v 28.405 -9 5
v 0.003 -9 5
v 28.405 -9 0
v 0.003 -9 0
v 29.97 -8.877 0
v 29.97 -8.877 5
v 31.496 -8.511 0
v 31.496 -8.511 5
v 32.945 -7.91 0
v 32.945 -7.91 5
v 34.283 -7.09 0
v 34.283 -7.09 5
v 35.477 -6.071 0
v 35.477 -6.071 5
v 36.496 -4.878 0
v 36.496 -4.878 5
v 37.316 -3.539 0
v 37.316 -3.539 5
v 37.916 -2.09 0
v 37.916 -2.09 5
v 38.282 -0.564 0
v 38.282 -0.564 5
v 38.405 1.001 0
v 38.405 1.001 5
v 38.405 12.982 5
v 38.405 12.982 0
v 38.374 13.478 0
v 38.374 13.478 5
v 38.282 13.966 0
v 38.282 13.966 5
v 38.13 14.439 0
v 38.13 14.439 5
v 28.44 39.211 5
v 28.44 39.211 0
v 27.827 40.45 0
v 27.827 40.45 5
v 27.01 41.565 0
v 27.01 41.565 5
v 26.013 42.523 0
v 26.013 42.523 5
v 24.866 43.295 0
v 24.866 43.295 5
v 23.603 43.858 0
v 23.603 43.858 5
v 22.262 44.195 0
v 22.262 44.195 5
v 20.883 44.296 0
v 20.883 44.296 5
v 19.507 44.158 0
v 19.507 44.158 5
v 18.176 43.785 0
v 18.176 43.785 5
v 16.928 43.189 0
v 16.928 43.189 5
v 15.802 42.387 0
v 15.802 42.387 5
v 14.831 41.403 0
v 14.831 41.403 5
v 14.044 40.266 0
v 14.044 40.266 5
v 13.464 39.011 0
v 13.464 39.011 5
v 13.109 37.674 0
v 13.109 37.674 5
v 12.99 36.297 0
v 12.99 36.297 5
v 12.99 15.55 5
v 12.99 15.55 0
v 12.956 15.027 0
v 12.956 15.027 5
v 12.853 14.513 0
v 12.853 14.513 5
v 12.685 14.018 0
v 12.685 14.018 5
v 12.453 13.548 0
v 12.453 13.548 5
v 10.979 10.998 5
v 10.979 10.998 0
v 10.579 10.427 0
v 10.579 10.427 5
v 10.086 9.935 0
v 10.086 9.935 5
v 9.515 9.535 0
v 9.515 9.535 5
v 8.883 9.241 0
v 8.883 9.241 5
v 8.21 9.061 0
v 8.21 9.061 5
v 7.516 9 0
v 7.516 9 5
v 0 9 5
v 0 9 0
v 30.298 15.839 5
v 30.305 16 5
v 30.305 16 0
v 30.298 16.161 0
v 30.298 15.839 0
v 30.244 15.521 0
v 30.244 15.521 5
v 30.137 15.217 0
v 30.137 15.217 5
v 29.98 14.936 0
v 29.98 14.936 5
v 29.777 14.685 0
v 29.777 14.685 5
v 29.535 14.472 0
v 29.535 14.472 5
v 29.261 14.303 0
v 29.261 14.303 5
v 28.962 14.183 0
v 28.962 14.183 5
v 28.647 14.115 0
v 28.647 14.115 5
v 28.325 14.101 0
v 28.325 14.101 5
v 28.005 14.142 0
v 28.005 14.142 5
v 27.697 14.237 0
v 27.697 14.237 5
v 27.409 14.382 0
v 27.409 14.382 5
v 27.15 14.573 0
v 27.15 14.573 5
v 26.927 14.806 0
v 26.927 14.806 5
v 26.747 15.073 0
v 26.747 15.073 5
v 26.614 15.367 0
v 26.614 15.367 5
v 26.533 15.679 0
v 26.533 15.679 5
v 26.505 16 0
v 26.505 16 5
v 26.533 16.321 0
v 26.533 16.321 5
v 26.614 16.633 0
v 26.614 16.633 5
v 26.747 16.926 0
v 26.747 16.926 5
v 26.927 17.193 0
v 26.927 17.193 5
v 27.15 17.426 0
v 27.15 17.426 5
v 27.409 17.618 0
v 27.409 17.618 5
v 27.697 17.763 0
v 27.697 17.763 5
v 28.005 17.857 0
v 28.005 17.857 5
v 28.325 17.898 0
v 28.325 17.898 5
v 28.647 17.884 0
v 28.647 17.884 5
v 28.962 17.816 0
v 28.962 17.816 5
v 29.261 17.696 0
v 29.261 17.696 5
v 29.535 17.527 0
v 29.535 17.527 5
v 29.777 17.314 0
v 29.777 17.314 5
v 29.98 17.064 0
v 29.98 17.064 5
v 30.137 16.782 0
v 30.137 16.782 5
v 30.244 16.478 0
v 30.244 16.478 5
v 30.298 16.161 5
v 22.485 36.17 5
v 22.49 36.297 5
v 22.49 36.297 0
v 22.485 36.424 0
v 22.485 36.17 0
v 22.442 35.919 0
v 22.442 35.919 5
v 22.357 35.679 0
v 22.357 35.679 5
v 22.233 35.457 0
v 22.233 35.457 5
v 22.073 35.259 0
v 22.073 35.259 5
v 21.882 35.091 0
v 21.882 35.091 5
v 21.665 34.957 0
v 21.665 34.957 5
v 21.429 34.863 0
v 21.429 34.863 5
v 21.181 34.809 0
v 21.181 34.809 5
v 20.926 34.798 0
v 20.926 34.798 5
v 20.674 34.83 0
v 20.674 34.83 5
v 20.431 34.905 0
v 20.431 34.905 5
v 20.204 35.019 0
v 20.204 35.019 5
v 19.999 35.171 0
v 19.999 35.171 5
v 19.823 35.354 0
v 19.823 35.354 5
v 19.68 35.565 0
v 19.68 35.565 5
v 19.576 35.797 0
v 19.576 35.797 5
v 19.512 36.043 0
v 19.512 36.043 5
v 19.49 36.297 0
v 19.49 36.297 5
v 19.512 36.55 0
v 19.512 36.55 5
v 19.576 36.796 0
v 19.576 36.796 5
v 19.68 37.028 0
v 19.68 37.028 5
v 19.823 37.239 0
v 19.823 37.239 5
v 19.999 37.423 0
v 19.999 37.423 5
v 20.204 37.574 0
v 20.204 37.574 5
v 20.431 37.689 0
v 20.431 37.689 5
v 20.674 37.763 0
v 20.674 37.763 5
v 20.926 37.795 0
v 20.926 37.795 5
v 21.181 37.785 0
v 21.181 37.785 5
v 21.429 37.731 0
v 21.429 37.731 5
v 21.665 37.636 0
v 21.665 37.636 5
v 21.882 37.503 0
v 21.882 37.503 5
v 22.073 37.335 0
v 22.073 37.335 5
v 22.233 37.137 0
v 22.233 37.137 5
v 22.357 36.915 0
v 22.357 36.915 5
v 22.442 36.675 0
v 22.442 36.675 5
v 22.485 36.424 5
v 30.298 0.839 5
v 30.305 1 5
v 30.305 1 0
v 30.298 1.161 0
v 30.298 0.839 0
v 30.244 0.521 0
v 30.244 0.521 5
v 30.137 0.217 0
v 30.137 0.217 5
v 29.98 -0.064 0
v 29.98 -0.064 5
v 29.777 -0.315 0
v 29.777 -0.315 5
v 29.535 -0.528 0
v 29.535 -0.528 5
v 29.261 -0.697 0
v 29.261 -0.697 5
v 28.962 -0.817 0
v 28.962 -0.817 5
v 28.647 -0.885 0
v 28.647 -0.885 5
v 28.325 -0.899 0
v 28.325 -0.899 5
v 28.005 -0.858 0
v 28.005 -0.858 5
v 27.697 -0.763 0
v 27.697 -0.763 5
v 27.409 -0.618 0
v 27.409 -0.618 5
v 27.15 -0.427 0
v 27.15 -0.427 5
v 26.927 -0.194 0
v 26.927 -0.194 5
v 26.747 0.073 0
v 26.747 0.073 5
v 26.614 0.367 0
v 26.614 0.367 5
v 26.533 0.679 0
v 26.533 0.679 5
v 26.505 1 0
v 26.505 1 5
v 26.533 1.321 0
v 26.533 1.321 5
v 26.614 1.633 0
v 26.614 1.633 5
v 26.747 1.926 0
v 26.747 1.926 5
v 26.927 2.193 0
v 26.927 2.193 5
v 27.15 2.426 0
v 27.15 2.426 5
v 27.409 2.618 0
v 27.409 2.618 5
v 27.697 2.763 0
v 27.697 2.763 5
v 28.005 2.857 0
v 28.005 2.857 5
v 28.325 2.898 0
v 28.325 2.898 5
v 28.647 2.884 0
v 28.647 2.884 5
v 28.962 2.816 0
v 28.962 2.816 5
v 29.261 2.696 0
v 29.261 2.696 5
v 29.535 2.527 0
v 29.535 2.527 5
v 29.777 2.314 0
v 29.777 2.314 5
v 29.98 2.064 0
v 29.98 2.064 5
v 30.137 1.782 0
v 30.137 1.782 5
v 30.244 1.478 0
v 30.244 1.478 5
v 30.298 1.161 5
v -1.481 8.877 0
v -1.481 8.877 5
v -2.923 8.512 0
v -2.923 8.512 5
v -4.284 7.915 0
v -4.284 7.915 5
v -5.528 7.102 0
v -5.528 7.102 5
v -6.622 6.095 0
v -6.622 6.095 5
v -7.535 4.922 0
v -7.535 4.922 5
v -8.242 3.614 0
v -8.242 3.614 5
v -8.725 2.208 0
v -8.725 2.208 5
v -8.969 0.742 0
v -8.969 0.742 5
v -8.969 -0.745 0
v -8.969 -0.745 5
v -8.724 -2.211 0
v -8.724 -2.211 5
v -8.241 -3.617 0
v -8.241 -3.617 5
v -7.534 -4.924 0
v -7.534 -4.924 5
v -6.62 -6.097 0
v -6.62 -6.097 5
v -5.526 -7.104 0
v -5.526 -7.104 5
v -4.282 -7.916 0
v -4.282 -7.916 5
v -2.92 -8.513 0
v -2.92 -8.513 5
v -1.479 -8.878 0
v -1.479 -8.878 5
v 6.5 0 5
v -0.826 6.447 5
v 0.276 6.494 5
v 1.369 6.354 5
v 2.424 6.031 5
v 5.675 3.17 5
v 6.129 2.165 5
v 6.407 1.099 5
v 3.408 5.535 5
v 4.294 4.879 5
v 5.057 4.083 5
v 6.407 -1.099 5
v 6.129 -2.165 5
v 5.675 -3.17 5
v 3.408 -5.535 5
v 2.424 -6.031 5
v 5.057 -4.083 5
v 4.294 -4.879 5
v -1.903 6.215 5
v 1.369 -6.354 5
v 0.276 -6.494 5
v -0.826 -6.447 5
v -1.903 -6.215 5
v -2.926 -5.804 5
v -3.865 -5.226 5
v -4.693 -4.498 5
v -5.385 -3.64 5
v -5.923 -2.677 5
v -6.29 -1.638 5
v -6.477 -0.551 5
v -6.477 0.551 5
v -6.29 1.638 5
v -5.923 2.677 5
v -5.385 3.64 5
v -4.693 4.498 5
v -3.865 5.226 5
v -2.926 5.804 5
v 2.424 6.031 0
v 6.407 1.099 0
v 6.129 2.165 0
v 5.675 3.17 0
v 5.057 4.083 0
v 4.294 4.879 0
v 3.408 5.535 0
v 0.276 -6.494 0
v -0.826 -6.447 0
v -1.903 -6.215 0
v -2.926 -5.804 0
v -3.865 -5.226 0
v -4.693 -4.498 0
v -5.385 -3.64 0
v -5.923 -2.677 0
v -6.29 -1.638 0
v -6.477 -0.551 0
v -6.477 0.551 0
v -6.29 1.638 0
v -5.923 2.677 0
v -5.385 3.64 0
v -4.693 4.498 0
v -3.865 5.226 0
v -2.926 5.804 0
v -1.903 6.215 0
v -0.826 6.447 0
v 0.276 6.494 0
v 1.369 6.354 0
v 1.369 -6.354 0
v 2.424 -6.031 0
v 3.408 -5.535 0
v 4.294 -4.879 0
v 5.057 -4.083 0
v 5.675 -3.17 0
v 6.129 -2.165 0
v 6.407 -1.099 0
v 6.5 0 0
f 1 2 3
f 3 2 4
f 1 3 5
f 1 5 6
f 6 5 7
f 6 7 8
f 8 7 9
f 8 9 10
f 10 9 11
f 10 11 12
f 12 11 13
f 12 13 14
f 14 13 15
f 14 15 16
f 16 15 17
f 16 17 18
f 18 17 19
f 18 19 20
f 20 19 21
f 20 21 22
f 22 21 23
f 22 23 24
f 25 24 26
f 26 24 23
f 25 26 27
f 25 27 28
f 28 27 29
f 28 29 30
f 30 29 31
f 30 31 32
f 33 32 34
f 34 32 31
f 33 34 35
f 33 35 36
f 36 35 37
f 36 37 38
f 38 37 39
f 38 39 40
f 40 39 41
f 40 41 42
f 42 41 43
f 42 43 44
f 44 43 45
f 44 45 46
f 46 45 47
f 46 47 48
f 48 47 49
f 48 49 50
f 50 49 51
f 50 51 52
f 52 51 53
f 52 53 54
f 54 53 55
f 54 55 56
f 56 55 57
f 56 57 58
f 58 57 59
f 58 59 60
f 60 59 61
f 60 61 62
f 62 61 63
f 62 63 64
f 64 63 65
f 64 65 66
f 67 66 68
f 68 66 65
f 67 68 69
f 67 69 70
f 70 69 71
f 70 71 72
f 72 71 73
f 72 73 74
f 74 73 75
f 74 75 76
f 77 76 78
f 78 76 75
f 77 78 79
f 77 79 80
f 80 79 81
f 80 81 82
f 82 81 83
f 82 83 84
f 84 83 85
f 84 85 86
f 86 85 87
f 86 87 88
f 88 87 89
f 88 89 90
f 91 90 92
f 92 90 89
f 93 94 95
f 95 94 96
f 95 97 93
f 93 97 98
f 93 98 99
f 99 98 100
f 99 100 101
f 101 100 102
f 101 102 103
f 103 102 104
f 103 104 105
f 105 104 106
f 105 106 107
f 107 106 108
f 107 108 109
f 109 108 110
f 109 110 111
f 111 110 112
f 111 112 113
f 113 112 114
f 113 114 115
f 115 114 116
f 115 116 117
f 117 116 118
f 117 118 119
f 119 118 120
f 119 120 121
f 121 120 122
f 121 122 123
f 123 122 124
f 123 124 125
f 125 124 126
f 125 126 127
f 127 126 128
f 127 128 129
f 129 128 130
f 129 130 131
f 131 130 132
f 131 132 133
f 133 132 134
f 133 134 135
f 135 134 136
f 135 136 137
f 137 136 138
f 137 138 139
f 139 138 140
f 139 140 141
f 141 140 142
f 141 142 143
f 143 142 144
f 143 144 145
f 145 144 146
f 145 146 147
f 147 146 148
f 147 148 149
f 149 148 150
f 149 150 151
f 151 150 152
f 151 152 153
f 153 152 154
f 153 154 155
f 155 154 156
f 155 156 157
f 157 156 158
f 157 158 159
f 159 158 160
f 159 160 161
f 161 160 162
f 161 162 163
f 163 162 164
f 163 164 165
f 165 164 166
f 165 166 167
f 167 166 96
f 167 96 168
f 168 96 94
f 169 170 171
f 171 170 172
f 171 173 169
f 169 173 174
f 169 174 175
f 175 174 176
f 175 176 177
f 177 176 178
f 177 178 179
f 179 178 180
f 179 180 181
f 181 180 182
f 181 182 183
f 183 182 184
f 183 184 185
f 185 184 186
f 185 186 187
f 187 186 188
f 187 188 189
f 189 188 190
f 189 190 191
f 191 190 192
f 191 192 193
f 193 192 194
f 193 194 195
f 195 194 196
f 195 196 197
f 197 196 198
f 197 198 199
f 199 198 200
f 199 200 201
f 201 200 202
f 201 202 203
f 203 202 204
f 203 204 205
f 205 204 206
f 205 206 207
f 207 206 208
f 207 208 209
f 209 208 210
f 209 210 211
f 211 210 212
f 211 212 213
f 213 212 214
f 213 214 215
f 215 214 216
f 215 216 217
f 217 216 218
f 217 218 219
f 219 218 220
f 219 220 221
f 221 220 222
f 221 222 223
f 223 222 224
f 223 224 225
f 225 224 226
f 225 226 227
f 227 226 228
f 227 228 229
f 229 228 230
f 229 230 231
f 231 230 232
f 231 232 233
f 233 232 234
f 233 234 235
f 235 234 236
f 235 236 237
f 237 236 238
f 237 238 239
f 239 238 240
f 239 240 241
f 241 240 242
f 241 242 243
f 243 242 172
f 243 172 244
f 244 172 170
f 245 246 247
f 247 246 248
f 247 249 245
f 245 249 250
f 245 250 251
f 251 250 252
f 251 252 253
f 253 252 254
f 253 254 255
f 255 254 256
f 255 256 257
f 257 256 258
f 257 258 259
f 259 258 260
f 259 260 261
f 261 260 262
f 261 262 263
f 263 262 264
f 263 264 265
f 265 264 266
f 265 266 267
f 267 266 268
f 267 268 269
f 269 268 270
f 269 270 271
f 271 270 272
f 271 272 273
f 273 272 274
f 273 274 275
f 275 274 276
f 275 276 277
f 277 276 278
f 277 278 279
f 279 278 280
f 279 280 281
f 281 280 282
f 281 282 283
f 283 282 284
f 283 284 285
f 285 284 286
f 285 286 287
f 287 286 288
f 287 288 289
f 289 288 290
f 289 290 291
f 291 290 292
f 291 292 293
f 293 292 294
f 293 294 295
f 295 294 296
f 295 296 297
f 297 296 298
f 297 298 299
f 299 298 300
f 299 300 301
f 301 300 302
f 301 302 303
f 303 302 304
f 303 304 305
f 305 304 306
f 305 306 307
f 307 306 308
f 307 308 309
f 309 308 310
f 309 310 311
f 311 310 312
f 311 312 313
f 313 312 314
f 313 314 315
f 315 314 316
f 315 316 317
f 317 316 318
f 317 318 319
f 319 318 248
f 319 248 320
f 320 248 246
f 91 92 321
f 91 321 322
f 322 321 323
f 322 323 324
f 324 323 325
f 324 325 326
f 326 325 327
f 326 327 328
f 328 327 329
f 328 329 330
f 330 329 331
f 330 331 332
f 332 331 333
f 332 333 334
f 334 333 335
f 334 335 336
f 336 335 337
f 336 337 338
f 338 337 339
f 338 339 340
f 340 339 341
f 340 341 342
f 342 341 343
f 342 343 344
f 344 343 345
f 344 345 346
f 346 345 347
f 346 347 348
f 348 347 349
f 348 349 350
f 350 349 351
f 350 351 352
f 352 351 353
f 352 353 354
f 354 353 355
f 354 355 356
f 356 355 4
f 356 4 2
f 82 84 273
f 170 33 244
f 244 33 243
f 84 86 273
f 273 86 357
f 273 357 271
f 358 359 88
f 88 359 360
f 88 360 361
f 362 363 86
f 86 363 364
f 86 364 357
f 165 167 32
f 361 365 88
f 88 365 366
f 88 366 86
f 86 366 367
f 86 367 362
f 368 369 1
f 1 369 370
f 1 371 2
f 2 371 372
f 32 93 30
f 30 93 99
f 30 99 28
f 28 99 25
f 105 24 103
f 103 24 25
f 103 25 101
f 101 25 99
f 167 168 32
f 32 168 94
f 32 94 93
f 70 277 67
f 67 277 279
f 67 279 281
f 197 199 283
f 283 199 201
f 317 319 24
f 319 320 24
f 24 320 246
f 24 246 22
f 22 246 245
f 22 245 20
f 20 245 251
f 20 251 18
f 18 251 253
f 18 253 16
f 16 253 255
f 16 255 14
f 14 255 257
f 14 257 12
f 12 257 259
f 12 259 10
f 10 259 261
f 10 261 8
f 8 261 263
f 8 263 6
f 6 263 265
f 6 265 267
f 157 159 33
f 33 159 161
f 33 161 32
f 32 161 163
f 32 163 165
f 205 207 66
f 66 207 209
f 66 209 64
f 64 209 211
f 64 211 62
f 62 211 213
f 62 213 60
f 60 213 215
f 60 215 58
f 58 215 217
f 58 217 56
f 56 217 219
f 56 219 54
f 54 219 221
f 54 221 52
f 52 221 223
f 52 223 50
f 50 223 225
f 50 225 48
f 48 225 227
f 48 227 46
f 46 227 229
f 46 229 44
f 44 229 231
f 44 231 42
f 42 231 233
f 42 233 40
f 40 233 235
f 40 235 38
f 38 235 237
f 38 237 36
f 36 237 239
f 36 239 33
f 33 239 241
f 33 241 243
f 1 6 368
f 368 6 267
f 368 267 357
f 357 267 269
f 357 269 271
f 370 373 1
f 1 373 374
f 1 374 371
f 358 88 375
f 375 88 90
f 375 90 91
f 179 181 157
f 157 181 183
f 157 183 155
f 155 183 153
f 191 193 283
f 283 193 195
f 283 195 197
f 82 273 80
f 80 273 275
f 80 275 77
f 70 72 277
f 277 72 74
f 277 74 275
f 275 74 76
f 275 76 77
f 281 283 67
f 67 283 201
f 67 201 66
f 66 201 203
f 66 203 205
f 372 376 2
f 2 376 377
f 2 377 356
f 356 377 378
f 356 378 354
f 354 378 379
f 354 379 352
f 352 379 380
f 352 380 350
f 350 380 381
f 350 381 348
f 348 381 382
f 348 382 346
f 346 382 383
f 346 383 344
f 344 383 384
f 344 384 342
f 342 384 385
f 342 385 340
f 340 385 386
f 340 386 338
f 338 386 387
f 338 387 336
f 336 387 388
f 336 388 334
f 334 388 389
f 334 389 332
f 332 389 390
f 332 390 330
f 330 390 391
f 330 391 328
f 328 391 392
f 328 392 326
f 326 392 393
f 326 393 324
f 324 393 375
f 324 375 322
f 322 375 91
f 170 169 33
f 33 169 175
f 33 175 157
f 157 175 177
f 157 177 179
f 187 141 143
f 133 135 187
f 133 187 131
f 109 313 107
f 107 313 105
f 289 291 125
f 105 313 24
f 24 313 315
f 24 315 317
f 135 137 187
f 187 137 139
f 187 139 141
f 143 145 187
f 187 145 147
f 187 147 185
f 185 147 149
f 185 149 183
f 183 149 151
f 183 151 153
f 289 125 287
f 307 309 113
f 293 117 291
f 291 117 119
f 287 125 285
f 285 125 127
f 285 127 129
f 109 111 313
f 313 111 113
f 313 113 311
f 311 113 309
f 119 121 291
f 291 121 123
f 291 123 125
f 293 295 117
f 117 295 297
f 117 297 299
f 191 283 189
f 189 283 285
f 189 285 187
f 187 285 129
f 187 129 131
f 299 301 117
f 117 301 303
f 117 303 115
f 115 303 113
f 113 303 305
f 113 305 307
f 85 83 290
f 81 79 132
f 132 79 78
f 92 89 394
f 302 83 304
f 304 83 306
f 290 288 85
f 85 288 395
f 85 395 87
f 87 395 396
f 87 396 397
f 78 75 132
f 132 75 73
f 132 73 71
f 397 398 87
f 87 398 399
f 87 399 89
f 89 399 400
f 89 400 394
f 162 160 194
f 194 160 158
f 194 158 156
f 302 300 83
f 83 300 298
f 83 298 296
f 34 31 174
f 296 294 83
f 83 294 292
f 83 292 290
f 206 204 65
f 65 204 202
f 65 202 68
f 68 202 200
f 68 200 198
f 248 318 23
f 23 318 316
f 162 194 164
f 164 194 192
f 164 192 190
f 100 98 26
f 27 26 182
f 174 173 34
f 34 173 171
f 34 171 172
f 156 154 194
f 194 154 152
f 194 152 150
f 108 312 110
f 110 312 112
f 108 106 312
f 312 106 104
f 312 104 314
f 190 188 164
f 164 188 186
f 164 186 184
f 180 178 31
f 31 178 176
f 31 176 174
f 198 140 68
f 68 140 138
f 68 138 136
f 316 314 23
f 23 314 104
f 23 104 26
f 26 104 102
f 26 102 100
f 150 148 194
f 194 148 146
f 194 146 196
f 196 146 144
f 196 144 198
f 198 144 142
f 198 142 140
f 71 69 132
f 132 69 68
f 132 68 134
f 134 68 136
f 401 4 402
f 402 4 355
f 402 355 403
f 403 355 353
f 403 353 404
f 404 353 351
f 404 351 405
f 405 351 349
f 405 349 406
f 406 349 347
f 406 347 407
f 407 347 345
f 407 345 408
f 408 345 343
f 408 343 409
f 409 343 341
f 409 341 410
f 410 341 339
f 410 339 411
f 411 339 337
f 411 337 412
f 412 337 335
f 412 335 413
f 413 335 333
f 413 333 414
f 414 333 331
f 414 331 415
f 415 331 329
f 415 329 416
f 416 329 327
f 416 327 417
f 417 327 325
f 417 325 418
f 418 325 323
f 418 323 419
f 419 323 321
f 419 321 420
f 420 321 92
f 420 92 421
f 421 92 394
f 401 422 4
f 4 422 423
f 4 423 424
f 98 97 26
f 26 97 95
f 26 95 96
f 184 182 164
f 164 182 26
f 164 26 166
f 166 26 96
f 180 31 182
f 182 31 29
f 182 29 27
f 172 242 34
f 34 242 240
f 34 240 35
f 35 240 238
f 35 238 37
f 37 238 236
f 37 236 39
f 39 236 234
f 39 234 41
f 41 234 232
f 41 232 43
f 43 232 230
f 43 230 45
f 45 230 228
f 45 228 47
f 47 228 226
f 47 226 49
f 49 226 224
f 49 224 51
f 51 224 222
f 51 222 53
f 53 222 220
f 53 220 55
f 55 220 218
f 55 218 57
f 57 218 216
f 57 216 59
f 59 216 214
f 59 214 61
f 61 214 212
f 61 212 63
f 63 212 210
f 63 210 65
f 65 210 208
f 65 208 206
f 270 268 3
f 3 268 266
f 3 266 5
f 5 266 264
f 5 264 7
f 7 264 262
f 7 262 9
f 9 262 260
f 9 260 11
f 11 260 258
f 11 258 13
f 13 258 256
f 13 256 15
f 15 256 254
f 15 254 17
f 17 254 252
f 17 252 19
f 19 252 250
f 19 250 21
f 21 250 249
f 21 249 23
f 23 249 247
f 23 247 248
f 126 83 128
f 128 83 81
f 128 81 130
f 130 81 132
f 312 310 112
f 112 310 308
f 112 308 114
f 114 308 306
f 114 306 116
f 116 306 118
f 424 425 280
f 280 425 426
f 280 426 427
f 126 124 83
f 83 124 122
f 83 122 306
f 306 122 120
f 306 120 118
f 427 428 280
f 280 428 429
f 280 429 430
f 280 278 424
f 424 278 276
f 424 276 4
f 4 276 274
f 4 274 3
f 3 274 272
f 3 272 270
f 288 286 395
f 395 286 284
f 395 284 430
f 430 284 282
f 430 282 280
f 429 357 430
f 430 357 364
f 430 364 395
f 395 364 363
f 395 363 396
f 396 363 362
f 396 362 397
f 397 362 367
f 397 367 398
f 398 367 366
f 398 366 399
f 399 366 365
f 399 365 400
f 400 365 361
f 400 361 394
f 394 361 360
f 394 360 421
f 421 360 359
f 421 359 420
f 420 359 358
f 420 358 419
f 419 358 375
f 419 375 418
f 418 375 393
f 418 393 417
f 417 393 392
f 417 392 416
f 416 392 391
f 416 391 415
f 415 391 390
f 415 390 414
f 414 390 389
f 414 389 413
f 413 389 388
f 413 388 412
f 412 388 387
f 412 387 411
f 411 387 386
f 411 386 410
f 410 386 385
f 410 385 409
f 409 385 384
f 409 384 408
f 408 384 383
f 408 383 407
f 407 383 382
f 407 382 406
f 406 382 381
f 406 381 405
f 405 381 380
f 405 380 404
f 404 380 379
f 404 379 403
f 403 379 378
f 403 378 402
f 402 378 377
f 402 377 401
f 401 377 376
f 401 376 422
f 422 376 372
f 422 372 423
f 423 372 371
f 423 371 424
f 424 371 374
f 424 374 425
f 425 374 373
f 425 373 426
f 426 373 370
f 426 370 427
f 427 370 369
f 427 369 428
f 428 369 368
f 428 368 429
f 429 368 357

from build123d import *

# Parameters (mm, degrees)
EXTRUDE_1_OUTLINE_R   = 5
EXTRUDE_1_OUTLINE_R_2 = 1.9
EXTRUDE_1_OUTLINE_R_3 = 1.5
EXTRUDE_1_DEPTH       = 5
SKETCH_2_R            = 6.5
CUT_EXTRUDE_1_DEPTH   = 59.840235174


# Read off the part's stored shape, not the designer's step: 凸台-拉伸1
with BuildPart() as part:
    # 凸台-拉伸1 outline → 凸台-拉伸1 (new body)
    with BuildSketch(Plane.XY):
        with BuildLine():
            ThreePointArc((0, 9), (-8.999999903, -0.001320394), (0.002640787, -8.999999613))
            Line((0.002640787, -8.999999613), (28.4053363, -8.999999613))
            ThreePointArc((28.4053363, -8.999999613), (35.476644301, -6.070827227), (38.405336277, 1.000679757))
            Line((38.405336277, 1.000679757), (38.404522272, 12.982447292))
            ThreePointArc((38.404522272, 12.982447292), (38.33518919, 13.723699418), (38.129692452, 14.439264147))
            Line((38.129692452, 14.439264147), (28.440328317, 39.210942539))
            ThreePointArc((28.440328317, 39.210942539), (19.507207266, 44.158149523), (12.989987975, 36.296765334))
            Line((12.989987975, 36.296765334), (12.989987975, 15.549905346))
            ThreePointArc((12.989987975, 15.549905346), (12.853385476, 14.513488564), (12.452908102, 13.547860343))
            Line((12.452908102, 13.547860343), (10.978711226, 10.997954609))
            ThreePointArc((10.978711226, 10.997954609), (9.514768336, 9.535307706), (7.515791099, 8.999999613))
            Line((7.515791099, 8.999999613), (0, 9))
        make_face()
        Circle(EXTRUDE_1_OUTLINE_R, mode=Mode.SUBTRACT)
        with Locations((28.405336318, 0.999728686)):
            Circle(EXTRUDE_1_OUTLINE_R_2, mode=Mode.SUBTRACT)
        with Locations((28.405336318, 15.999728686)):
            Circle(EXTRUDE_1_OUTLINE_R_2, mode=Mode.SUBTRACT)
        with Locations((20.989987975, 36.296765334)):
            Circle(EXTRUDE_1_OUTLINE_R_3, mode=Mode.SUBTRACT)
    extrude(amount=EXTRUDE_1_DEPTH)

    # 草图2 → 切除-拉伸1 (cut, through all)
    with BuildSketch(Plane.XY.offset(5)):
        Circle(SKETCH_2_R)
    extrude(amount=-CUT_EXTRUDE_1_DEPTH, mode=Mode.SUBTRACT)


solid = part.part
